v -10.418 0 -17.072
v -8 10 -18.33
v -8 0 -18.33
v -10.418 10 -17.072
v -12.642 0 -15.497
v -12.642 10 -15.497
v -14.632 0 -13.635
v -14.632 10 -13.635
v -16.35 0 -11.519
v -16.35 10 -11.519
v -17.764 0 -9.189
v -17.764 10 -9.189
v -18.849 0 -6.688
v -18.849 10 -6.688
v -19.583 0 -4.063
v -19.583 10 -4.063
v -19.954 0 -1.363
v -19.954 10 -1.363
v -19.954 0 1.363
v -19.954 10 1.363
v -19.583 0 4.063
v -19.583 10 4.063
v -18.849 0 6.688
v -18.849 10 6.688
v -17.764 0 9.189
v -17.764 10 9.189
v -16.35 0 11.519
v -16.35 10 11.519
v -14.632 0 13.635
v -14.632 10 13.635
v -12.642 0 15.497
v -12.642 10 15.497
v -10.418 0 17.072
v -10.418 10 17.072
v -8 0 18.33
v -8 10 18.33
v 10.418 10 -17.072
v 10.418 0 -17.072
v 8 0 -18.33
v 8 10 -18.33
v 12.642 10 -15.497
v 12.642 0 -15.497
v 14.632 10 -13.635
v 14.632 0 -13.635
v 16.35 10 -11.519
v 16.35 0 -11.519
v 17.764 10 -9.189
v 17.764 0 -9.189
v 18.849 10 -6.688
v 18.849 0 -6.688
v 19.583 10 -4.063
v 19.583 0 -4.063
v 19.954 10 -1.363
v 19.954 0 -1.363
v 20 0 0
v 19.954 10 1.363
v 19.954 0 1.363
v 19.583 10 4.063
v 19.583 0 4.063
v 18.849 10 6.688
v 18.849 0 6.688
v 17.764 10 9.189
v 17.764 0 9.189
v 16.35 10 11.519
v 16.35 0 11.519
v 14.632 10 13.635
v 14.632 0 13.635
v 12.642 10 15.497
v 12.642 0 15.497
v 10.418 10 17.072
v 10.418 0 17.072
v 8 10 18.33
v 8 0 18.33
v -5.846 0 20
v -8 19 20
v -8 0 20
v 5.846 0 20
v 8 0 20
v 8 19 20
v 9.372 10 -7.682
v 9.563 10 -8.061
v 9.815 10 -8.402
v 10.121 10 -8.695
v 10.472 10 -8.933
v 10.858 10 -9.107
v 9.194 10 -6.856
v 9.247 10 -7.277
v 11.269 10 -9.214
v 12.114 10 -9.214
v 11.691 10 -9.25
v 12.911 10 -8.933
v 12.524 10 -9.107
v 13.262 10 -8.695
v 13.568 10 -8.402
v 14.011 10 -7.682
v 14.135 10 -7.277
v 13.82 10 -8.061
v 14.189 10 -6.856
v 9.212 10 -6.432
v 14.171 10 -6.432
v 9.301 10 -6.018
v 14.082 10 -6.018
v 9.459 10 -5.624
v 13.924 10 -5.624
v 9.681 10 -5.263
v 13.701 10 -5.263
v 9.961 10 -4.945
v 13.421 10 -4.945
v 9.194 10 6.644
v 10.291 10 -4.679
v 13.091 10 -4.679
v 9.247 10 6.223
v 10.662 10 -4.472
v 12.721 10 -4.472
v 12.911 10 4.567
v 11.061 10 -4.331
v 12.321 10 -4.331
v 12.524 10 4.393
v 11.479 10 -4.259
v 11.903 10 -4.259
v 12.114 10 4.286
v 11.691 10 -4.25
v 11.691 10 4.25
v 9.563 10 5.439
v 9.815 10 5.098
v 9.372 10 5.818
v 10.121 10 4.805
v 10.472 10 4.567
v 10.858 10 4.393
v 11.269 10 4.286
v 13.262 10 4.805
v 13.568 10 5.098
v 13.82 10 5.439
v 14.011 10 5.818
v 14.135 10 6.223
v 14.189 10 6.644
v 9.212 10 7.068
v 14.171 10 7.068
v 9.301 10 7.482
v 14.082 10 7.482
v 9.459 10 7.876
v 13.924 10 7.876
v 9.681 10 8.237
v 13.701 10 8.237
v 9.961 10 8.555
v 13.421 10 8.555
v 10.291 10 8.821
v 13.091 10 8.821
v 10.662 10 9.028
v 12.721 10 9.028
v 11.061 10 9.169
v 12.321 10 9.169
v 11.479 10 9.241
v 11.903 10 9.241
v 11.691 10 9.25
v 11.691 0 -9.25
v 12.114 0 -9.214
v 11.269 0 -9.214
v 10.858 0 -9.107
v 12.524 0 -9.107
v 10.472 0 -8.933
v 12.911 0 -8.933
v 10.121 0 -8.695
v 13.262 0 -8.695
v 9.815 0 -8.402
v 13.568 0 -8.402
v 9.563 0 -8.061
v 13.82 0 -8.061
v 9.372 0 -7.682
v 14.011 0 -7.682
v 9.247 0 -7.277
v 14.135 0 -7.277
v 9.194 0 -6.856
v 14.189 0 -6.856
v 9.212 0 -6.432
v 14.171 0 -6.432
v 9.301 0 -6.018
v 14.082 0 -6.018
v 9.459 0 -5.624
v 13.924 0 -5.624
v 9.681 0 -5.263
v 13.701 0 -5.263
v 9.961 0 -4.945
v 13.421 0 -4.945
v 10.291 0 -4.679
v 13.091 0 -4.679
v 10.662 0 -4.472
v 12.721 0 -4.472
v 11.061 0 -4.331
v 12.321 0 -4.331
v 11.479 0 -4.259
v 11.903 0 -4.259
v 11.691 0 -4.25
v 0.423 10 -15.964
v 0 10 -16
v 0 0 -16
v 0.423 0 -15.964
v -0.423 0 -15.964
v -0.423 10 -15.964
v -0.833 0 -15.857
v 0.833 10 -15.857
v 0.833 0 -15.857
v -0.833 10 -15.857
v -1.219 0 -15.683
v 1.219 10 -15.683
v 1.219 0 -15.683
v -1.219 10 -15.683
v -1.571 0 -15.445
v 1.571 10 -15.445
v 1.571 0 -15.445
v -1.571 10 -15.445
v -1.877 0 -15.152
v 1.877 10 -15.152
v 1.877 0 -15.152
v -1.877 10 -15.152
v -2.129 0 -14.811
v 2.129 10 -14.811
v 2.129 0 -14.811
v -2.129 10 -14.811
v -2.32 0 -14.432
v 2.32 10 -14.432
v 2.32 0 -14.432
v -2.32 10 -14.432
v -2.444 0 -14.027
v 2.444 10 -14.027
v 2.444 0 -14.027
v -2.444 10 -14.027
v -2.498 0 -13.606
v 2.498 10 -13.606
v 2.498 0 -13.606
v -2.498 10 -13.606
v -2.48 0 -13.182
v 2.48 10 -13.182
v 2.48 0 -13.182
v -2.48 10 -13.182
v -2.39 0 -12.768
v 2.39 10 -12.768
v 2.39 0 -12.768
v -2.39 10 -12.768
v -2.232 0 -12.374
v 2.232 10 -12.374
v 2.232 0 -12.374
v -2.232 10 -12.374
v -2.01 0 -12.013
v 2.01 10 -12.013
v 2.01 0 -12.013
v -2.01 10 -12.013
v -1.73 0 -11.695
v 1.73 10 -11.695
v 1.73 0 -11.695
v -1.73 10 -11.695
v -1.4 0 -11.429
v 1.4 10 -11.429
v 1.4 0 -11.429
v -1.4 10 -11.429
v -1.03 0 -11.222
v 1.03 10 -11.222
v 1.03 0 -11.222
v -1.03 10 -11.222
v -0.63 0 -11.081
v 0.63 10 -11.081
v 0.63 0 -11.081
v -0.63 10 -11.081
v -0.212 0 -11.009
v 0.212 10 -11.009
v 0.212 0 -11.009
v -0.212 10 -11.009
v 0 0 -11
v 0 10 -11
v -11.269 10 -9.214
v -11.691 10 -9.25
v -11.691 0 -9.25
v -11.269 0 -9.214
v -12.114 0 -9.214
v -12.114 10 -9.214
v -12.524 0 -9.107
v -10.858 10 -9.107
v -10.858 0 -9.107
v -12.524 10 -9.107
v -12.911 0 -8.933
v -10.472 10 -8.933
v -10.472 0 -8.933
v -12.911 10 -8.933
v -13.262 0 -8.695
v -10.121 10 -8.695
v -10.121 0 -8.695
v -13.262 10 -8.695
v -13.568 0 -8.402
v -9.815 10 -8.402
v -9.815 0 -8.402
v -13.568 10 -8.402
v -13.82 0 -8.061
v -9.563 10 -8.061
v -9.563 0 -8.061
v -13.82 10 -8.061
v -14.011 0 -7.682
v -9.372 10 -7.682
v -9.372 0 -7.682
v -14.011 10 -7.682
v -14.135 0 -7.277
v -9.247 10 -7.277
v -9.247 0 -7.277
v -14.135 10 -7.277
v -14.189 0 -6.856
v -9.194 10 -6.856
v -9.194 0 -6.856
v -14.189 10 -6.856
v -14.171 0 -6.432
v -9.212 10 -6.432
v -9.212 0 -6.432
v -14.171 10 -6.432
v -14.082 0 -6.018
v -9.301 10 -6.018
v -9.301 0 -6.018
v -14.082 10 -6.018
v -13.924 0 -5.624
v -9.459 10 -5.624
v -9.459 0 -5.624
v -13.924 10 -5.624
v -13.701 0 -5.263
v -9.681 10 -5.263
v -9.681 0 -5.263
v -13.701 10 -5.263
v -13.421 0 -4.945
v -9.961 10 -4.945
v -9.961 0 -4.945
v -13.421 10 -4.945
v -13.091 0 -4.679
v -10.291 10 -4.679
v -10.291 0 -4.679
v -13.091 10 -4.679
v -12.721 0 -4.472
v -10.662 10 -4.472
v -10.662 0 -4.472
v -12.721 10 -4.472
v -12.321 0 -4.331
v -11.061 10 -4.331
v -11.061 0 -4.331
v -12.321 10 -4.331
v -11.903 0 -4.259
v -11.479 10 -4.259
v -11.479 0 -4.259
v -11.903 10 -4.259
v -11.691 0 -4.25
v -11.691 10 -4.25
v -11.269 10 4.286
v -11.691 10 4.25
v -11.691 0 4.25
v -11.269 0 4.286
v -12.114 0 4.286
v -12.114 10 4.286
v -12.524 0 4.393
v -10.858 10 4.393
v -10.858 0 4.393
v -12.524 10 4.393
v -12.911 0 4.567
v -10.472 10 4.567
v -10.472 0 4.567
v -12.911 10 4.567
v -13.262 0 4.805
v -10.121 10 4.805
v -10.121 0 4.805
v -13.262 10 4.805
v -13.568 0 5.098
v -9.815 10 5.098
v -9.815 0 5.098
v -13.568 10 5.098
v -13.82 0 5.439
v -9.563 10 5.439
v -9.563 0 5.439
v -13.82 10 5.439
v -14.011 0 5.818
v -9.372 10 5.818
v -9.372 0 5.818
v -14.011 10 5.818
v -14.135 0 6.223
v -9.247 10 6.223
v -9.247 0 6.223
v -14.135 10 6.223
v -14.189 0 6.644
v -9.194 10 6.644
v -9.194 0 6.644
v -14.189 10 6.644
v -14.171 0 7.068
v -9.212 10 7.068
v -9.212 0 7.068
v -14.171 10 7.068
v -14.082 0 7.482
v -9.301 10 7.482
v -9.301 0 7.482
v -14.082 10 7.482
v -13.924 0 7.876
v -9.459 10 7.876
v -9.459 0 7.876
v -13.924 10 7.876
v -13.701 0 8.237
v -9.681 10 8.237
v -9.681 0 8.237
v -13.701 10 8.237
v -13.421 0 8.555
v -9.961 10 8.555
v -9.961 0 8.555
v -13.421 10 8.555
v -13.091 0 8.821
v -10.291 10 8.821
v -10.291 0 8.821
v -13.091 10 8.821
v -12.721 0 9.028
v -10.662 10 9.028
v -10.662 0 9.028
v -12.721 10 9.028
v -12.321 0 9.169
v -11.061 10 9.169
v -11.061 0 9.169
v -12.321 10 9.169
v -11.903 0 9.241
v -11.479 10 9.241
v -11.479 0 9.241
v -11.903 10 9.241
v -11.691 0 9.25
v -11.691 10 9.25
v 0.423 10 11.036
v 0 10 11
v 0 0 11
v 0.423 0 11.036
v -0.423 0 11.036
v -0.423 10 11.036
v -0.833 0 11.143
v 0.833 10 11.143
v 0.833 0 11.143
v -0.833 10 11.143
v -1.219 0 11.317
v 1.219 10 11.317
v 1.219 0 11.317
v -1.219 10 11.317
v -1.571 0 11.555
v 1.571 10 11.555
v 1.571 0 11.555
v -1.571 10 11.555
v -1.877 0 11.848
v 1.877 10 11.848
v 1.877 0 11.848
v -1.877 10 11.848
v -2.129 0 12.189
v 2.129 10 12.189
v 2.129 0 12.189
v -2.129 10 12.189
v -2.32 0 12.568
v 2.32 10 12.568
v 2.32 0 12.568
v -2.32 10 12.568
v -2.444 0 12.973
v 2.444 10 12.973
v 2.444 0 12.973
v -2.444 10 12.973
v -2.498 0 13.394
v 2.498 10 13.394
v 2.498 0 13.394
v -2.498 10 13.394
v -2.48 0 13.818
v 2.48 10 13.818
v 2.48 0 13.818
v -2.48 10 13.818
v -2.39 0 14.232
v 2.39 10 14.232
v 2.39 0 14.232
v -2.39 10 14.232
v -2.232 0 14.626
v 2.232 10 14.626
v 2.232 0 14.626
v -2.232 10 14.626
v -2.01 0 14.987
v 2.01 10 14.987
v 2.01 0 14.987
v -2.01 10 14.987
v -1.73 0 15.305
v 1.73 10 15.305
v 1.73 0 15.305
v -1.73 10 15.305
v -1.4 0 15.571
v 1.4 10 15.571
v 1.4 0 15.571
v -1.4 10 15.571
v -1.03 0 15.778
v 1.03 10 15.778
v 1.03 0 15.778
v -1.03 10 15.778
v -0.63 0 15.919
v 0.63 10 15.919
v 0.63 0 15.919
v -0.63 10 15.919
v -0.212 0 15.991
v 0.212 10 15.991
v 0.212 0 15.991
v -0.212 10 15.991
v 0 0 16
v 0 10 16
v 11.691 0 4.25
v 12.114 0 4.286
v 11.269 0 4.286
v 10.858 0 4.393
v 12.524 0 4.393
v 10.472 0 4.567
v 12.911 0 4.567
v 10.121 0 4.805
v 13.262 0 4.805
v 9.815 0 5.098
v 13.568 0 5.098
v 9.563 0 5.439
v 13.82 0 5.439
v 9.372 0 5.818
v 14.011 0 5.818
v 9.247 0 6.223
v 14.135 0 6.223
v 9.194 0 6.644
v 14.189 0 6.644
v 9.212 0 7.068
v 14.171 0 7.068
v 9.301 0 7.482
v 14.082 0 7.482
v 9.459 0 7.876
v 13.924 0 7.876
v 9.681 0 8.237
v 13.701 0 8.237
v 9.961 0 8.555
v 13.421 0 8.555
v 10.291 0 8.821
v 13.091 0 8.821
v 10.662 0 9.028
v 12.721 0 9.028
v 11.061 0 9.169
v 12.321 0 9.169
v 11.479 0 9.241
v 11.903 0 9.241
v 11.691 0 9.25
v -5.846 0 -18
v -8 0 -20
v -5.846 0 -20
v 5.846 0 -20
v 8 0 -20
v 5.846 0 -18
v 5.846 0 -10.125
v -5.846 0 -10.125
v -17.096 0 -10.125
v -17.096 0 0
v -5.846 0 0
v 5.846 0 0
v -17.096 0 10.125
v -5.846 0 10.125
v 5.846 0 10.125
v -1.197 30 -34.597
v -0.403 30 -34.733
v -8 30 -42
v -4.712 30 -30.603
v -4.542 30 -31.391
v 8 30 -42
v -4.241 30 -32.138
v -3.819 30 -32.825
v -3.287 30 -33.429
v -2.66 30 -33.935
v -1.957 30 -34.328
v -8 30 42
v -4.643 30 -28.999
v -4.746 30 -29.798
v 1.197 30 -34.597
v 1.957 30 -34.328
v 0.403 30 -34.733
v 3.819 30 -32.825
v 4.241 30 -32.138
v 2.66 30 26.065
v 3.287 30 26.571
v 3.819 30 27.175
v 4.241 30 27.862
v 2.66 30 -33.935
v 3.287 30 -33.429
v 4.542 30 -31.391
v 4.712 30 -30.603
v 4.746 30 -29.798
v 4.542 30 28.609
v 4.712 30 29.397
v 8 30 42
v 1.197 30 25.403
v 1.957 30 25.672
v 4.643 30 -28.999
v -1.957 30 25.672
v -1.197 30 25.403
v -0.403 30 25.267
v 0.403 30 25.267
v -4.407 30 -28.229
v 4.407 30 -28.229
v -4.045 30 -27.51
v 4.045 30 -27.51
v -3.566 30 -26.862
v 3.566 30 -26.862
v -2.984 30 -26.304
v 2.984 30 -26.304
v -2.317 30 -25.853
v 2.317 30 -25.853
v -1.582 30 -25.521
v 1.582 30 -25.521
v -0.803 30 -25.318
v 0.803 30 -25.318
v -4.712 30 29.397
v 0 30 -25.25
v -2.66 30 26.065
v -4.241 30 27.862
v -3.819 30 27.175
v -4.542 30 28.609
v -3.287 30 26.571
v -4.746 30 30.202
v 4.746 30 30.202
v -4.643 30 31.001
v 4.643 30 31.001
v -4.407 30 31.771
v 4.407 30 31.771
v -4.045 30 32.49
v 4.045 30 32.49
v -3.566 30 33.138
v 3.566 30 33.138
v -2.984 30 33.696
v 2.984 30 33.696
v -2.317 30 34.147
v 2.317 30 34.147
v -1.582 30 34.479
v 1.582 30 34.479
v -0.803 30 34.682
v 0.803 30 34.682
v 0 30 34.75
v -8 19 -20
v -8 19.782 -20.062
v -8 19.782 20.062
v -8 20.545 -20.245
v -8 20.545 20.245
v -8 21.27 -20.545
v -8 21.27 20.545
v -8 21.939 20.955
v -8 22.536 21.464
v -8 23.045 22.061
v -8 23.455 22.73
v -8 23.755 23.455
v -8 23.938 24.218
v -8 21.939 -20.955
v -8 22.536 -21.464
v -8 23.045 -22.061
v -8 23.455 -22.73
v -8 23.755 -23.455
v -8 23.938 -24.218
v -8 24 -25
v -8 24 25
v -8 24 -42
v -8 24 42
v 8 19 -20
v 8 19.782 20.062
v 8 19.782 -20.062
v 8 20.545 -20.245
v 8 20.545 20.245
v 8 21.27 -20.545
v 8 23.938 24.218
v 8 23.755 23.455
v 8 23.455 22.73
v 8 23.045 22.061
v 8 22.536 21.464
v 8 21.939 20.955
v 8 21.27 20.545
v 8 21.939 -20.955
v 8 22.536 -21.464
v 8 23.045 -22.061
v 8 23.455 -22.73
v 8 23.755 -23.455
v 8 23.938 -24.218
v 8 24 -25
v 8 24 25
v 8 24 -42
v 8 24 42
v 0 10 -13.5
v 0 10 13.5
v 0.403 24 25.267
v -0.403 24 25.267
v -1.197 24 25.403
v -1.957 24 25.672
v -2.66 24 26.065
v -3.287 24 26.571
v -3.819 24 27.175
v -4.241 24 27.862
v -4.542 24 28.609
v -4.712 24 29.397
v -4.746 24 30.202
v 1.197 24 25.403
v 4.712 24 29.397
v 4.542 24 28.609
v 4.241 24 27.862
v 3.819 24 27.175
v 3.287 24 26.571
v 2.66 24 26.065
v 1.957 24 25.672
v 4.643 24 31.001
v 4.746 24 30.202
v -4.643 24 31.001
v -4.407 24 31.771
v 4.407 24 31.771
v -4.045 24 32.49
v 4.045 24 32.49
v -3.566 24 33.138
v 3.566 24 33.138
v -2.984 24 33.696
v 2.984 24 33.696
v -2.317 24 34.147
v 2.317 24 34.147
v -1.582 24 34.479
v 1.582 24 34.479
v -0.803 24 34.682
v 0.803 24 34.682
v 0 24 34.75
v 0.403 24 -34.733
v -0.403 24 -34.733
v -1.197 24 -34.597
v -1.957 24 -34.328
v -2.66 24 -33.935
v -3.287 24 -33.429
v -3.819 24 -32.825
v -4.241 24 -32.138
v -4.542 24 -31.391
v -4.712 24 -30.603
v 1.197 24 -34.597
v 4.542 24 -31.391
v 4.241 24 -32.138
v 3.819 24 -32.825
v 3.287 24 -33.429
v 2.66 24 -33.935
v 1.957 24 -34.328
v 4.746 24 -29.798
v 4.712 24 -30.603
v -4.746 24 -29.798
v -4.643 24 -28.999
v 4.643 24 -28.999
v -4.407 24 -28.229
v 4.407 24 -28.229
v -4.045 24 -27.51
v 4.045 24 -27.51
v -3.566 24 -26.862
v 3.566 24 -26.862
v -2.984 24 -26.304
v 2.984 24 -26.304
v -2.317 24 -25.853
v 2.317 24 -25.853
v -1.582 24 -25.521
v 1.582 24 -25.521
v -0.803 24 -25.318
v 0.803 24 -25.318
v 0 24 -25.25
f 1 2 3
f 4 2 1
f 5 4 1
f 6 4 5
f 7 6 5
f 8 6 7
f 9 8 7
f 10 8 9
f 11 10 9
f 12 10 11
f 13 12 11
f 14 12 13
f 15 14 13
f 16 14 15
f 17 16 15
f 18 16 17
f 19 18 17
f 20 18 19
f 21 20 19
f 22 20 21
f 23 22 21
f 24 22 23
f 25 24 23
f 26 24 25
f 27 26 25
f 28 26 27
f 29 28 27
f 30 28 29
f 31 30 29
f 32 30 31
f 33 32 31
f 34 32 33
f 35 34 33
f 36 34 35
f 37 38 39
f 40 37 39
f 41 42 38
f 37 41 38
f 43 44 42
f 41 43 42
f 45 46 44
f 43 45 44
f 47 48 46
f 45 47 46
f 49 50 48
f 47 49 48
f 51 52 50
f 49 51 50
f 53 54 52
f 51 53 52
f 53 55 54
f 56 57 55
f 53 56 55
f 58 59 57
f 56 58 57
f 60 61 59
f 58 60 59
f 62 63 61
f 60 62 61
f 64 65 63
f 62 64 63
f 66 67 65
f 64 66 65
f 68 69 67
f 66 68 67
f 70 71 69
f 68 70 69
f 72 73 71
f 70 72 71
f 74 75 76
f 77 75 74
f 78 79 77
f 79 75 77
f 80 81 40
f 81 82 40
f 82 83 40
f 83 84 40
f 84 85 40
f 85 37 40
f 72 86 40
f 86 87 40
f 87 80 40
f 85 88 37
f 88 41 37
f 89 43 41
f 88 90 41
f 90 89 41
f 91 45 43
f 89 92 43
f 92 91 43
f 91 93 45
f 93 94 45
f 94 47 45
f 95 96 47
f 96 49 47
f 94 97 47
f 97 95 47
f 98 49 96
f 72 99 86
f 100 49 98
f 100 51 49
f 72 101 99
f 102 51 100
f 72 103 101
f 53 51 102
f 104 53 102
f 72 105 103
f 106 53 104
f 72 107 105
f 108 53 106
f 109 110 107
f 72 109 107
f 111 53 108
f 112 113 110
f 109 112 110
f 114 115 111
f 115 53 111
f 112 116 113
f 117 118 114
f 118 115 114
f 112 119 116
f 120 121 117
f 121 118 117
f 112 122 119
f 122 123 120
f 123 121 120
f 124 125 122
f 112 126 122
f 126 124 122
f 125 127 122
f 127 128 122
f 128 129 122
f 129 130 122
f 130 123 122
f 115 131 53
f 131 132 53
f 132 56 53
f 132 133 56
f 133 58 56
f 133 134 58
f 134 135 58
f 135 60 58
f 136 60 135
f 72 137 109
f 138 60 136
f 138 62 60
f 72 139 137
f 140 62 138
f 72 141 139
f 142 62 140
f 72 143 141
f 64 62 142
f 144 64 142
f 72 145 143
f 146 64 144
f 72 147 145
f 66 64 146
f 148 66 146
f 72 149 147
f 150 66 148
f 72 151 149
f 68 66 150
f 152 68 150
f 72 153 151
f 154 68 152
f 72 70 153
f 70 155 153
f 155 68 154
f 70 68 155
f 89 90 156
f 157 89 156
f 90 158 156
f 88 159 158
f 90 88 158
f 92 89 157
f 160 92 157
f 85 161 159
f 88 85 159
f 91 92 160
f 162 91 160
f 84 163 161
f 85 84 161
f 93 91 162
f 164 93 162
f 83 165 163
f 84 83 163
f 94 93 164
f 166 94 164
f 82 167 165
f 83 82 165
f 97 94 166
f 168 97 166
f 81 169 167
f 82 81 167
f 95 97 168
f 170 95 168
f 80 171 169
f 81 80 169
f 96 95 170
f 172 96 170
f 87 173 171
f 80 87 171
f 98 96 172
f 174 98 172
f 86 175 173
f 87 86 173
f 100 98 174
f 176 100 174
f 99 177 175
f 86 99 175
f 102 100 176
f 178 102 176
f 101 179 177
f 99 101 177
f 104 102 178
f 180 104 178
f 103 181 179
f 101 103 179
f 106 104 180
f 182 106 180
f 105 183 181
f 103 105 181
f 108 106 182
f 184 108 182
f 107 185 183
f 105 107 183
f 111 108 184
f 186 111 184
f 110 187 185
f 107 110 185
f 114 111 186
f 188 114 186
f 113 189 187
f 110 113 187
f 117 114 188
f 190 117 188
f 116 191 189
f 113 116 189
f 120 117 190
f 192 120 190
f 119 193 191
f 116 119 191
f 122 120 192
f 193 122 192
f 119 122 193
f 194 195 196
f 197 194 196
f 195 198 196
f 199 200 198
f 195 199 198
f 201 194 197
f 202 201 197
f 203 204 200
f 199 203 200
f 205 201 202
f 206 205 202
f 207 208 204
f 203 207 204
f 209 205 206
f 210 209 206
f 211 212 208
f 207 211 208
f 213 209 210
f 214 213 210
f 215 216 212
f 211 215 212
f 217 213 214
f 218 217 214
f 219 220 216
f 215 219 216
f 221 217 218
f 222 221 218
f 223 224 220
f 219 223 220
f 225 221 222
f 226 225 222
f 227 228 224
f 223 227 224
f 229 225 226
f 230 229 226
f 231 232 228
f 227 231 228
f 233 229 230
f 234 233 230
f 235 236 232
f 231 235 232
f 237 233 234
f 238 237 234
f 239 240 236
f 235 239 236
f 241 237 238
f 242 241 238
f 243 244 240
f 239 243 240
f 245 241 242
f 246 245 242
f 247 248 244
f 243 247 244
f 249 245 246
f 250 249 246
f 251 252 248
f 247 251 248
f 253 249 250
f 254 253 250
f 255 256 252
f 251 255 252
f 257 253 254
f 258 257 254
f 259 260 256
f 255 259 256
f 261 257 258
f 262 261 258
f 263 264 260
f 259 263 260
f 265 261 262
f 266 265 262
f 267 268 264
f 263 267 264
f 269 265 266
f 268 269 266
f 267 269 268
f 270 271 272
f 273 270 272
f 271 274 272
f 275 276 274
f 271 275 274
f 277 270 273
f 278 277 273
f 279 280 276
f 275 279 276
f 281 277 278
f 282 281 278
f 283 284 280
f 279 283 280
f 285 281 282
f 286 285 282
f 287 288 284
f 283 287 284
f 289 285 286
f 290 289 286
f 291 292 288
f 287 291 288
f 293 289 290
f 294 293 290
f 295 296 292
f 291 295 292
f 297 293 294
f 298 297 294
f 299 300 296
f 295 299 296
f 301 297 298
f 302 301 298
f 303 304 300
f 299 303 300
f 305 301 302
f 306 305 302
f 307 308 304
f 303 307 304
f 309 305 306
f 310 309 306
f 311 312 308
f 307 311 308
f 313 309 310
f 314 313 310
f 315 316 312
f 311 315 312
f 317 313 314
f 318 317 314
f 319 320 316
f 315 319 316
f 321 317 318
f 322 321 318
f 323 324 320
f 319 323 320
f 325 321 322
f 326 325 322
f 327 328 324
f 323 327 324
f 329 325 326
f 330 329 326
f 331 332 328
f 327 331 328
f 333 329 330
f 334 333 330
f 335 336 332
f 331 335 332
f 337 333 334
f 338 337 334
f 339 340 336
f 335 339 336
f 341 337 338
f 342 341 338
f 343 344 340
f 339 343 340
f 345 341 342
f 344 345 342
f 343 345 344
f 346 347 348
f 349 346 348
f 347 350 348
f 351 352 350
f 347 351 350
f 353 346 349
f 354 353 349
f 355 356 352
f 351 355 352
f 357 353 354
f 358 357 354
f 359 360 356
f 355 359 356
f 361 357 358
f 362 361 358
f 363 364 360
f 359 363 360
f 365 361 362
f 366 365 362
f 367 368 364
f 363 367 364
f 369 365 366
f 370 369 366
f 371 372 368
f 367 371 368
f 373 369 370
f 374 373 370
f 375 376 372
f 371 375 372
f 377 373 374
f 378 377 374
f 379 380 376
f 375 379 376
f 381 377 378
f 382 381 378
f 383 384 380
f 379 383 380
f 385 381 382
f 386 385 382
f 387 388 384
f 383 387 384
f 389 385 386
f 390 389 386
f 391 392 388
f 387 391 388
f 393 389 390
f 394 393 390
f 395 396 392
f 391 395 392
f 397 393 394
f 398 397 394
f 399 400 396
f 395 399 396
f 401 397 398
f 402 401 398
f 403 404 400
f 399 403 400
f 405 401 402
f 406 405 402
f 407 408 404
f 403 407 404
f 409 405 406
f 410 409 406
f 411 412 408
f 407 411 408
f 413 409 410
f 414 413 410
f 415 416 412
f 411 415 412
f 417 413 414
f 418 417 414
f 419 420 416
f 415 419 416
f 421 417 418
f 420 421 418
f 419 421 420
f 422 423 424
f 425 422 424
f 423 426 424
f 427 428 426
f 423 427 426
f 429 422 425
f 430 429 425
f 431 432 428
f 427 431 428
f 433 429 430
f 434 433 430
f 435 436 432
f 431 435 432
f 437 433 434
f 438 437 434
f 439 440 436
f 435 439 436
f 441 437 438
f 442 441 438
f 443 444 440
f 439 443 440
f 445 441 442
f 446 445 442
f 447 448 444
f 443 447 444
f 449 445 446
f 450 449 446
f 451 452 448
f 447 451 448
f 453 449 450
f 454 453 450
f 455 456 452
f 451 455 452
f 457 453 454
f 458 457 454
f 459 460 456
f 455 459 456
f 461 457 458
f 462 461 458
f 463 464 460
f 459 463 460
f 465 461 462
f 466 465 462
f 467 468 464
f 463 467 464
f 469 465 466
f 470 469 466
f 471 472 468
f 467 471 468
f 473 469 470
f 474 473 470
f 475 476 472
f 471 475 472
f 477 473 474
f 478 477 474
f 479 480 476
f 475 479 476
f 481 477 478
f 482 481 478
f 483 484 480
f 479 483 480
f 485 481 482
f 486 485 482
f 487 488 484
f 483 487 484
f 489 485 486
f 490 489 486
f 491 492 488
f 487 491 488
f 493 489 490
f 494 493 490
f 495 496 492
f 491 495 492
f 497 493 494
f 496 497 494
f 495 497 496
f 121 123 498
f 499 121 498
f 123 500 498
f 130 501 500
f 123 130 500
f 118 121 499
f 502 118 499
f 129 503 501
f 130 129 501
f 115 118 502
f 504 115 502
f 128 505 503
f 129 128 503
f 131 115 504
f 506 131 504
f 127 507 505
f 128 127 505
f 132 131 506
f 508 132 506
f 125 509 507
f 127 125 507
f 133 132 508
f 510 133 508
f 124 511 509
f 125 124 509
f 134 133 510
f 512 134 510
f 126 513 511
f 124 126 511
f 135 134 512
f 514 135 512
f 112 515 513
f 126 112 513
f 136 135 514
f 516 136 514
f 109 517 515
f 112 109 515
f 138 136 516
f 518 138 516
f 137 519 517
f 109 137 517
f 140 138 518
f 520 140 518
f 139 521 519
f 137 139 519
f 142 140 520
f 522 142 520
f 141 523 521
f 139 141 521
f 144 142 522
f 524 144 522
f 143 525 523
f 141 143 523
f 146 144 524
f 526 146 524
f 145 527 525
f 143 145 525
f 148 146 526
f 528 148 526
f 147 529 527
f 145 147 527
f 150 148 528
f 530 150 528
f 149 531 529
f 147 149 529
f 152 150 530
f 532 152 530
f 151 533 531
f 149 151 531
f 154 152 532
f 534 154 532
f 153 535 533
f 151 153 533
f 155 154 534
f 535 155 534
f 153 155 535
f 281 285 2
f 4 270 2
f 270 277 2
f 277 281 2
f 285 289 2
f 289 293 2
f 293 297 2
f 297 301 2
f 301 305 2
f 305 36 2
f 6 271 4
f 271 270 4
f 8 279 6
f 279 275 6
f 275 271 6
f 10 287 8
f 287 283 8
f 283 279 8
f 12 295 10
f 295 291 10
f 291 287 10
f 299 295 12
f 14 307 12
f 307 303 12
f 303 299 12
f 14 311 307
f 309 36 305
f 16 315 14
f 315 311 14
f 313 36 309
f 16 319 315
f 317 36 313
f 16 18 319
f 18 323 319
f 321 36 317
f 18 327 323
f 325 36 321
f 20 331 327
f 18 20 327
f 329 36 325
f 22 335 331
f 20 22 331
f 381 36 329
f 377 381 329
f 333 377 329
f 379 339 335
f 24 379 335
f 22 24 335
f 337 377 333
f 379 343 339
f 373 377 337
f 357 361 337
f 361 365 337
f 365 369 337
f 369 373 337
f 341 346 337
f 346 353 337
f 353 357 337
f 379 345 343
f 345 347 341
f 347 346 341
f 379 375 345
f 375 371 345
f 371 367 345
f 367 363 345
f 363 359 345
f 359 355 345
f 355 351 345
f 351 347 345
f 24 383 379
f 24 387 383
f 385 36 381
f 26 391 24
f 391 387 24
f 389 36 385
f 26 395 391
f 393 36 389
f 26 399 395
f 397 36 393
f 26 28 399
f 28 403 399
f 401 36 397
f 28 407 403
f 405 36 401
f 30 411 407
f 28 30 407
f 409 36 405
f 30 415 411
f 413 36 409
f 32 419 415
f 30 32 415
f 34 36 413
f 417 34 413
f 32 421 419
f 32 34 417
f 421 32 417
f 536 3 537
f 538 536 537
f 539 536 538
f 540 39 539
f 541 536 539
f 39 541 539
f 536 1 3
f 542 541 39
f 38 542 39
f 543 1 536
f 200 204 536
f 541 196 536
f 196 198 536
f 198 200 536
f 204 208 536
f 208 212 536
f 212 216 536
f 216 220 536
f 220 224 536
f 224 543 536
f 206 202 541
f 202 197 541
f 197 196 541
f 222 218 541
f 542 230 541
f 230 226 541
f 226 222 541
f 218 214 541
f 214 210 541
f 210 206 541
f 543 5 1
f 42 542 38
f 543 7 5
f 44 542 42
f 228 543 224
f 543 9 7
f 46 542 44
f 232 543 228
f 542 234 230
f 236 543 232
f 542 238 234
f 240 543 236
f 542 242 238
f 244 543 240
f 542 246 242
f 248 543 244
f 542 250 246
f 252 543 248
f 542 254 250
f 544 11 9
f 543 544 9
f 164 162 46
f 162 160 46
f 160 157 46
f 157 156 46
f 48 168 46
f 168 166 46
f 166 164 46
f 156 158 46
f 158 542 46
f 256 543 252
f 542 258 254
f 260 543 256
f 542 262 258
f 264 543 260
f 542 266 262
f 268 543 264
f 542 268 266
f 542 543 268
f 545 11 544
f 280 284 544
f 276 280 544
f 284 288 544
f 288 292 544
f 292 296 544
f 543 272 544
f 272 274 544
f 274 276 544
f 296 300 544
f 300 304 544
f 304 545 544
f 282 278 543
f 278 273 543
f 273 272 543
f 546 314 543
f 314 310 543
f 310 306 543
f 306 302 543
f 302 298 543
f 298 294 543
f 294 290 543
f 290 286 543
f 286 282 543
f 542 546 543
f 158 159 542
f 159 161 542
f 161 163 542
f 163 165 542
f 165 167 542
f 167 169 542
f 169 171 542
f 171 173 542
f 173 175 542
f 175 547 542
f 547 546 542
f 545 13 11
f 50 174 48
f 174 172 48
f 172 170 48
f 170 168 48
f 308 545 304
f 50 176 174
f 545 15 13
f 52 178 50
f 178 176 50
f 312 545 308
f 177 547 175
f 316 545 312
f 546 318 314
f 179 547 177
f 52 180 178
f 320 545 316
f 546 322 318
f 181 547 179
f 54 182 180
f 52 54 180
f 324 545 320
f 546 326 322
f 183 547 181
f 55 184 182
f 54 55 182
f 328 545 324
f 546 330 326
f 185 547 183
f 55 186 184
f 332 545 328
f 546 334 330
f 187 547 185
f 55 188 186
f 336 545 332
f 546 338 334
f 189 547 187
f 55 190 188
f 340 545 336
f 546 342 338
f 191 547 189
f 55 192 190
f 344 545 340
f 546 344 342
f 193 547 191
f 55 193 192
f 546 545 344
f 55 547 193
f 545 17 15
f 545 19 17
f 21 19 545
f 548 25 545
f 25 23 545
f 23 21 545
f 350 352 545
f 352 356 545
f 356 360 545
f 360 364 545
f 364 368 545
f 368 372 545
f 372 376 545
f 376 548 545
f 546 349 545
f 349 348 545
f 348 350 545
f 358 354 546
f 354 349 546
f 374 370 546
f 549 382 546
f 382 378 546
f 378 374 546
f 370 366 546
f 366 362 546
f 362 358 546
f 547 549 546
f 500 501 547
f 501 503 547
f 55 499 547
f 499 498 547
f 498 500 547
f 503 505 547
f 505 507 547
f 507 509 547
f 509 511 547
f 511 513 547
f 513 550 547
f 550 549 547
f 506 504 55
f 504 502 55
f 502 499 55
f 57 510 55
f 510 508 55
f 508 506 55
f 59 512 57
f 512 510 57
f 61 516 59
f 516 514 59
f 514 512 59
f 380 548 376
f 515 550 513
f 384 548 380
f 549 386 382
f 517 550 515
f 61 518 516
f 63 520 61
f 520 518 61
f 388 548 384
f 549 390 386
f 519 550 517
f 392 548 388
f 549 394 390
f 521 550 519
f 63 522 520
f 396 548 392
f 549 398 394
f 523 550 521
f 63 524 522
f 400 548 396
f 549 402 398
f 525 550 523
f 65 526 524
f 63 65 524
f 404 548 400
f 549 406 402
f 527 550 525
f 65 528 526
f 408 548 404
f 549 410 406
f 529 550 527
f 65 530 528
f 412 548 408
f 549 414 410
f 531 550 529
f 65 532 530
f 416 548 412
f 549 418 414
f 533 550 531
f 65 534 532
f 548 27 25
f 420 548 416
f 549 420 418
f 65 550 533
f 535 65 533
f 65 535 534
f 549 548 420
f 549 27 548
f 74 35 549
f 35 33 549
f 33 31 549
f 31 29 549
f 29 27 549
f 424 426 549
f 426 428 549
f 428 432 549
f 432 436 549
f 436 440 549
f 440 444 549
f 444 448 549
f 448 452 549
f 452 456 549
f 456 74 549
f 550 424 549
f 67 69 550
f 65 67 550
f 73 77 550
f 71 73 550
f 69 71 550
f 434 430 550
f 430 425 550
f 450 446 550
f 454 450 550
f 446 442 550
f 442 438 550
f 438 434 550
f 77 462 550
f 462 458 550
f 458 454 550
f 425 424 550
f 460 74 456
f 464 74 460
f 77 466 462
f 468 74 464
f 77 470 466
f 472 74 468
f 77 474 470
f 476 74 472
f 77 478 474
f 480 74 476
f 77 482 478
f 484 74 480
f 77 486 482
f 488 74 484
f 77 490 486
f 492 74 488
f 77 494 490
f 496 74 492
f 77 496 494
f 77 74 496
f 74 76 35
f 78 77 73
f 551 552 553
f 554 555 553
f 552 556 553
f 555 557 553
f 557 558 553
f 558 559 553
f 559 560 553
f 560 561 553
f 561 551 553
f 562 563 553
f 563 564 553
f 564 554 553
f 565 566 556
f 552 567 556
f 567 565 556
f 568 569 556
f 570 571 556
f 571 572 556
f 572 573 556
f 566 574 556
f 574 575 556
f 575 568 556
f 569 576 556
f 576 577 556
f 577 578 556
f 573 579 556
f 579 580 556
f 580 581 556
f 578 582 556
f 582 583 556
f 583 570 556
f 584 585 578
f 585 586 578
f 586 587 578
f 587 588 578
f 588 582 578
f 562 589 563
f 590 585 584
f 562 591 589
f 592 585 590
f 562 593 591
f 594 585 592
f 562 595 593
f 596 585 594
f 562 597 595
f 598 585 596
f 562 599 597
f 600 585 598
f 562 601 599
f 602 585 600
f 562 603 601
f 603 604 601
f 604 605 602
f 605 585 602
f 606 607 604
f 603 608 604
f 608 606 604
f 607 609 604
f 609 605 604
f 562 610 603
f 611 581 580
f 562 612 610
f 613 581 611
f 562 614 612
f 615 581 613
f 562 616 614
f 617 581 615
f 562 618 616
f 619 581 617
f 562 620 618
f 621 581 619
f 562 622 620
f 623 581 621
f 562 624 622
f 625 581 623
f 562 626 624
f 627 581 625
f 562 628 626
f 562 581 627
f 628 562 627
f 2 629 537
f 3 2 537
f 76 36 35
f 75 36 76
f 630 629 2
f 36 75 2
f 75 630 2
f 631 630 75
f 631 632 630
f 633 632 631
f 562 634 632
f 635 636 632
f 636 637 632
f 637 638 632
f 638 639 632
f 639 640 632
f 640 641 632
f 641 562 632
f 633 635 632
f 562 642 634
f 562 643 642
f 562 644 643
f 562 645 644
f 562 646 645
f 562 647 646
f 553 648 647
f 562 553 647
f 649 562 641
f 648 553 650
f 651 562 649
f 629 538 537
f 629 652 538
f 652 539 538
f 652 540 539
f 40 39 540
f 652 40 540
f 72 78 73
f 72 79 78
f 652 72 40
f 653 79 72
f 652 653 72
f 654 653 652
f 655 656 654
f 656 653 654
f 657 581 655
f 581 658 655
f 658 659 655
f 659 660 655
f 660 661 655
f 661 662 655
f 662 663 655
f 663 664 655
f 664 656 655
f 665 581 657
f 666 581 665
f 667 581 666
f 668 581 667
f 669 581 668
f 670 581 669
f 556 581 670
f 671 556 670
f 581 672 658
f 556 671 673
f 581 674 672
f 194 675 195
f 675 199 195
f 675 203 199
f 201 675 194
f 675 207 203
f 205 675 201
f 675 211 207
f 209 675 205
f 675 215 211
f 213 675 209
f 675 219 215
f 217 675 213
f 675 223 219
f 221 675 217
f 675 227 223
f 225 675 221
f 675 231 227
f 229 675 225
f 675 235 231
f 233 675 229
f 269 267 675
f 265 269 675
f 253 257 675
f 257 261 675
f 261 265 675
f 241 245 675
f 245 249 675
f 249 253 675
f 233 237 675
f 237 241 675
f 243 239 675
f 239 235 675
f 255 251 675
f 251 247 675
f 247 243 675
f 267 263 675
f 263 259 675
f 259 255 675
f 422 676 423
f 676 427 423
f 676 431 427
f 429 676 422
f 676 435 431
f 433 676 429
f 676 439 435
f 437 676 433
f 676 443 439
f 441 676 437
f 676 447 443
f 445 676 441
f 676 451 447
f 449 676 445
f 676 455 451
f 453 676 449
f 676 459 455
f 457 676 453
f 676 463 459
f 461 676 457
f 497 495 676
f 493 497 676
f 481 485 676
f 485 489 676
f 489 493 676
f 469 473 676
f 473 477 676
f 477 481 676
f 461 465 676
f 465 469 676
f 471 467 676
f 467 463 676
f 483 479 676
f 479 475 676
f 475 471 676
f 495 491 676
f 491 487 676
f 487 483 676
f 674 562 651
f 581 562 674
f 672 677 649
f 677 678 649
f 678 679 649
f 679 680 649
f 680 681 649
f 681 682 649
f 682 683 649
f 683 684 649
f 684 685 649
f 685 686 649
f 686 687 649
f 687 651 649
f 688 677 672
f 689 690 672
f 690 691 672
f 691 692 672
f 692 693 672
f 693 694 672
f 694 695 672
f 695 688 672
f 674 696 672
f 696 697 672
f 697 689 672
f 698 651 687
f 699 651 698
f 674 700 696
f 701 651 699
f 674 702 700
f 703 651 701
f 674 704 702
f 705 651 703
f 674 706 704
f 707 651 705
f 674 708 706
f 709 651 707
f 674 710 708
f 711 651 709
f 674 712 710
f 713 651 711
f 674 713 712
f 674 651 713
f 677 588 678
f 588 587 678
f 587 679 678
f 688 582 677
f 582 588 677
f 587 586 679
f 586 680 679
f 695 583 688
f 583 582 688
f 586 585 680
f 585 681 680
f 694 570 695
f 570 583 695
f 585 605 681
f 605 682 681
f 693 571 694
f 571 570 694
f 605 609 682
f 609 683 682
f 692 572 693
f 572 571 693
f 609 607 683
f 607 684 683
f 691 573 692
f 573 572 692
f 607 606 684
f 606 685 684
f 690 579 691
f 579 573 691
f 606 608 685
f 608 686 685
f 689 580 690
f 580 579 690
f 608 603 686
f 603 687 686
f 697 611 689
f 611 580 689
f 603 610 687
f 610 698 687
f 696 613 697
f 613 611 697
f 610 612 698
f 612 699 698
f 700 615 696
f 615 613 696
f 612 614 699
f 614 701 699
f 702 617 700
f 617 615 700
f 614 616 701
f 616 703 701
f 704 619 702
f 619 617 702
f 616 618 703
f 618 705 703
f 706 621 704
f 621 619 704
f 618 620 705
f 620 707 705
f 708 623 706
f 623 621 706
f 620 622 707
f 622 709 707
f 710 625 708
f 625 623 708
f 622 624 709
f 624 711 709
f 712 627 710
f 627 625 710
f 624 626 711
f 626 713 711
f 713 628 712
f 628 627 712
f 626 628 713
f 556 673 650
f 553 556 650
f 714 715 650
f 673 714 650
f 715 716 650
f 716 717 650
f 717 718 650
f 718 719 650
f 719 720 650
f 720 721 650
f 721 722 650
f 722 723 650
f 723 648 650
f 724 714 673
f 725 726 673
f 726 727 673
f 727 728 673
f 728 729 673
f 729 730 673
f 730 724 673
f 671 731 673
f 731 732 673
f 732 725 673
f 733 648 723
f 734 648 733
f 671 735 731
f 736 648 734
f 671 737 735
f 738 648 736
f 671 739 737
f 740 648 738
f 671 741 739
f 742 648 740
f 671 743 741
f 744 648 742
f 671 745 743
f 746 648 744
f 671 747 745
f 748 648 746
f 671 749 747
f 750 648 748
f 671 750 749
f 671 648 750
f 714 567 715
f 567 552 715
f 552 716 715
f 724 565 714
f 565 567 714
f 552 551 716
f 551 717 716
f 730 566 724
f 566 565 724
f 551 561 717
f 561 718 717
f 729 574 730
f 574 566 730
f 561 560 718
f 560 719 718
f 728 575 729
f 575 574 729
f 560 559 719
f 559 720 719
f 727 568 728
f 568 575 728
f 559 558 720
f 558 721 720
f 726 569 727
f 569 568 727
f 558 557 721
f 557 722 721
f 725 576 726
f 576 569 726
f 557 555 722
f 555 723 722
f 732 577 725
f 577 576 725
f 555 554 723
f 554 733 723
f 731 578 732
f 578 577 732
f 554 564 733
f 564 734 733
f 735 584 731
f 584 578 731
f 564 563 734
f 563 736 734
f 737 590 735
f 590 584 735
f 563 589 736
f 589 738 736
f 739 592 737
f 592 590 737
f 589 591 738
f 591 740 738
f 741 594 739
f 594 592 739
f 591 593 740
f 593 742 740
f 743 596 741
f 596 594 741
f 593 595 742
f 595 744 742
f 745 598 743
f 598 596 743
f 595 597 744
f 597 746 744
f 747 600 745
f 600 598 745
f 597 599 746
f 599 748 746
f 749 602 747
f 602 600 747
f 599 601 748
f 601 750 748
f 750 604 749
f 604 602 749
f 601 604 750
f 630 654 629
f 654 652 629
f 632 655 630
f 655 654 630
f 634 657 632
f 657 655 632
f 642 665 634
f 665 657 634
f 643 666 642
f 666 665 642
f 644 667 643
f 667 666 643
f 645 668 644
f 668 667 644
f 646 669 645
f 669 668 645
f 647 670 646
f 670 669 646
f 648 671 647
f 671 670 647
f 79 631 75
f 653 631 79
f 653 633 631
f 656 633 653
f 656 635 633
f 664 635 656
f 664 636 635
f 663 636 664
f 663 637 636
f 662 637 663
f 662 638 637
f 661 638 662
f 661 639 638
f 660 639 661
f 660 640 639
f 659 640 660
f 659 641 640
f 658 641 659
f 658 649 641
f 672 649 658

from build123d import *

# Parameters (mm, degrees)
SKETCH1_R           = 20
BOSS_EXTRUDE1_DEPTH = 10
SKETCH2_W           = 16
SKETCH2_H           = 40
BOSS_EXTRUDE2_DEPTH = 20
SKETCH3_W           = 16
SKETCH3_H           = 22
SKETCH3_R           = 4.75
BOSS_EXTRUDE3_DEPTH = 6
FILLET1_R           = 5
BOSS_EXTRUDE4_START = 10
BOSS_EXTRUDE4_DEPTH = 10


with BuildPart() as part:
    # Sketch1 → Boss-Extrude1 (new body)
    # profile 1 of 2: a face of its own
    with BuildSketch(Plane(origin=(0, 0, 0), x_dir=(1, 0, 0), z_dir=(0, 1, 0))):
        with Locations(Location((0, 0, 0), (0, 0, 270))):
            Circle(SKETCH1_R)
        with BuildLine():
            ThreePointArc((9.191342951, -6.75), (11.691342951, -9.25), (14.191342951, -6.75))
            ThreePointArc((14.191342951, -6.75), (11.691342951, -4.25), (9.191342951, -6.75))
        make_face(mode=Mode.SUBTRACT)
        with BuildLine():
            ThreePointArc((-2.5, -13.5), (0, -16), (2.5, -13.5))
            ThreePointArc((2.5, -13.5), (0, -11), (-2.5, -13.5))
        make_face(mode=Mode.SUBTRACT)
        with BuildLine():
            ThreePointArc((-14.191342951, -6.75), (-11.691342951, -9.25), (-9.191342951, -6.75))
            ThreePointArc((-9.191342951, -6.75), (-11.691342951, -4.25), (-14.191342951, -6.75))
        make_face(mode=Mode.SUBTRACT)
        with BuildLine():
            ThreePointArc((-14.191342951, 6.75), (-11.691342951, 4.25), (-9.191342951, 6.75))
            ThreePointArc((-9.191342951, 6.75), (-11.691342951, 9.25), (-14.191342951, 6.75))
        make_face(mode=Mode.SUBTRACT)
        with BuildLine():
            ThreePointArc((5.5, 0), (0, 5.5), (-5.5, 0))
            ThreePointArc((-5.5, 0), (0, -5.5), (5.5, 0))
        make_face(mode=Mode.SUBTRACT)
        with BuildLine():
            ThreePointArc((-2.5, 13.5), (0, 11), (2.5, 13.5))
            ThreePointArc((2.5, 13.5), (0, 16), (-2.5, 13.5))
        make_face(mode=Mode.SUBTRACT)
        with BuildLine():
            ThreePointArc((9.191342951, 6.75), (11.691342951, 4.25), (14.191342951, 6.75))
            ThreePointArc((14.191342951, 6.75), (11.691342951, 9.25), (9.191342951, 6.75))
        make_face(mode=Mode.SUBTRACT)
    # profile 2 of 2: a face of its own
    with BuildSketch(Plane(origin=(0, 0, 0), x_dir=(1, 0, 0), z_dir=(0, 1, 0))):
        with BuildLine():
            ThreePointArc((-5.5, 0), (0, -5.5), (5.5, 0))
            ThreePointArc((5.5, 0), (0, 5.5), (-5.5, 0))
        make_face()
    extrude(amount=BOSS_EXTRUDE1_DEPTH)

    # Sketch2 → Boss-Extrude2 (add)
    with BuildSketch(Plane(origin=(0, 10, 0), x_dir=(1, 0, 0), z_dir=(0, 1, 0))):
        Rectangle(SKETCH2_W, SKETCH2_H)
    extrude(amount=BOSS_EXTRUDE2_DEPTH)

    # Sketch3 → Boss-Extrude3 (add)
    # profile 1 of 2: a face of its own
    with BuildSketch(Plane(origin=(0, 30, 0), x_dir=(1, 0, 0), z_dir=(0, 1, 0))):
        with Locations((0, -31)):
            Rectangle(SKETCH3_W, SKETCH3_H)
        with Locations(Location((0, -30, 0), (0, 0, 270))):
            Circle(SKETCH3_R, mode=Mode.SUBTRACT)
    # profile 2 of 2: a face of its own
    with BuildSketch(Plane(origin=(0, 30, 0), x_dir=(1, 0, 0), z_dir=(0, 1, 0))):
        with Locations((0, 31)):
            Rectangle(SKETCH3_W, SKETCH3_H)
        with Locations(Location((0, 30, 0), (0, 0, 270))):
            Circle(SKETCH3_R, mode=Mode.SUBTRACT)
    extrude(amount=-BOSS_EXTRUDE3_DEPTH)

    # Fillet1
    fillet1_edges = [part.edges().sort_by_distance(p)[0] for p in [
        (0, 24, 20),
        (0, 24, -20),
    ]]
    fillet(fillet1_edges, radius=FILLET1_R)

    # Sketch4 → Boss-Extrude4 (add)
    with BuildSketch(Plane.XZ.offset(-10).offset(BOSS_EXTRUDE4_START)):
        with BuildLine():
            Line((-8, -18.33030278), (-8, -20))
            Line((-8, -20), (0, -20))
            ThreePointArc((0, -20), (-4.086192874, -19.578126259), (-8, -18.33030278))
        make_face()
        with BuildLine():
            ThreePointArc((8, -18.33030278), (4.086192874, -19.578126259), (0, -20))
            Line((0, -20), (8, -20))
            Line((8, -20), (8, -18.33030278))
        make_face()
        with BuildLine():
            Line((8, 18.33030278), (8, 20))
            Line((8, 20), (0, 20))
            ThreePointArc((0, 20), (4.086192874, 19.578126259), (8, 18.33030278))
        make_face()
        with BuildLine():
            ThreePointArc((-8, 18.33030278), (-4.086192874, 19.578126259), (0, 20))
            Line((0, 20), (-8, 20))
            Line((-8, 20), (-8, 18.33030278))
        make_face()
    extrude(amount=-BOSS_EXTRUDE4_DEPTH)


solid = part.part
